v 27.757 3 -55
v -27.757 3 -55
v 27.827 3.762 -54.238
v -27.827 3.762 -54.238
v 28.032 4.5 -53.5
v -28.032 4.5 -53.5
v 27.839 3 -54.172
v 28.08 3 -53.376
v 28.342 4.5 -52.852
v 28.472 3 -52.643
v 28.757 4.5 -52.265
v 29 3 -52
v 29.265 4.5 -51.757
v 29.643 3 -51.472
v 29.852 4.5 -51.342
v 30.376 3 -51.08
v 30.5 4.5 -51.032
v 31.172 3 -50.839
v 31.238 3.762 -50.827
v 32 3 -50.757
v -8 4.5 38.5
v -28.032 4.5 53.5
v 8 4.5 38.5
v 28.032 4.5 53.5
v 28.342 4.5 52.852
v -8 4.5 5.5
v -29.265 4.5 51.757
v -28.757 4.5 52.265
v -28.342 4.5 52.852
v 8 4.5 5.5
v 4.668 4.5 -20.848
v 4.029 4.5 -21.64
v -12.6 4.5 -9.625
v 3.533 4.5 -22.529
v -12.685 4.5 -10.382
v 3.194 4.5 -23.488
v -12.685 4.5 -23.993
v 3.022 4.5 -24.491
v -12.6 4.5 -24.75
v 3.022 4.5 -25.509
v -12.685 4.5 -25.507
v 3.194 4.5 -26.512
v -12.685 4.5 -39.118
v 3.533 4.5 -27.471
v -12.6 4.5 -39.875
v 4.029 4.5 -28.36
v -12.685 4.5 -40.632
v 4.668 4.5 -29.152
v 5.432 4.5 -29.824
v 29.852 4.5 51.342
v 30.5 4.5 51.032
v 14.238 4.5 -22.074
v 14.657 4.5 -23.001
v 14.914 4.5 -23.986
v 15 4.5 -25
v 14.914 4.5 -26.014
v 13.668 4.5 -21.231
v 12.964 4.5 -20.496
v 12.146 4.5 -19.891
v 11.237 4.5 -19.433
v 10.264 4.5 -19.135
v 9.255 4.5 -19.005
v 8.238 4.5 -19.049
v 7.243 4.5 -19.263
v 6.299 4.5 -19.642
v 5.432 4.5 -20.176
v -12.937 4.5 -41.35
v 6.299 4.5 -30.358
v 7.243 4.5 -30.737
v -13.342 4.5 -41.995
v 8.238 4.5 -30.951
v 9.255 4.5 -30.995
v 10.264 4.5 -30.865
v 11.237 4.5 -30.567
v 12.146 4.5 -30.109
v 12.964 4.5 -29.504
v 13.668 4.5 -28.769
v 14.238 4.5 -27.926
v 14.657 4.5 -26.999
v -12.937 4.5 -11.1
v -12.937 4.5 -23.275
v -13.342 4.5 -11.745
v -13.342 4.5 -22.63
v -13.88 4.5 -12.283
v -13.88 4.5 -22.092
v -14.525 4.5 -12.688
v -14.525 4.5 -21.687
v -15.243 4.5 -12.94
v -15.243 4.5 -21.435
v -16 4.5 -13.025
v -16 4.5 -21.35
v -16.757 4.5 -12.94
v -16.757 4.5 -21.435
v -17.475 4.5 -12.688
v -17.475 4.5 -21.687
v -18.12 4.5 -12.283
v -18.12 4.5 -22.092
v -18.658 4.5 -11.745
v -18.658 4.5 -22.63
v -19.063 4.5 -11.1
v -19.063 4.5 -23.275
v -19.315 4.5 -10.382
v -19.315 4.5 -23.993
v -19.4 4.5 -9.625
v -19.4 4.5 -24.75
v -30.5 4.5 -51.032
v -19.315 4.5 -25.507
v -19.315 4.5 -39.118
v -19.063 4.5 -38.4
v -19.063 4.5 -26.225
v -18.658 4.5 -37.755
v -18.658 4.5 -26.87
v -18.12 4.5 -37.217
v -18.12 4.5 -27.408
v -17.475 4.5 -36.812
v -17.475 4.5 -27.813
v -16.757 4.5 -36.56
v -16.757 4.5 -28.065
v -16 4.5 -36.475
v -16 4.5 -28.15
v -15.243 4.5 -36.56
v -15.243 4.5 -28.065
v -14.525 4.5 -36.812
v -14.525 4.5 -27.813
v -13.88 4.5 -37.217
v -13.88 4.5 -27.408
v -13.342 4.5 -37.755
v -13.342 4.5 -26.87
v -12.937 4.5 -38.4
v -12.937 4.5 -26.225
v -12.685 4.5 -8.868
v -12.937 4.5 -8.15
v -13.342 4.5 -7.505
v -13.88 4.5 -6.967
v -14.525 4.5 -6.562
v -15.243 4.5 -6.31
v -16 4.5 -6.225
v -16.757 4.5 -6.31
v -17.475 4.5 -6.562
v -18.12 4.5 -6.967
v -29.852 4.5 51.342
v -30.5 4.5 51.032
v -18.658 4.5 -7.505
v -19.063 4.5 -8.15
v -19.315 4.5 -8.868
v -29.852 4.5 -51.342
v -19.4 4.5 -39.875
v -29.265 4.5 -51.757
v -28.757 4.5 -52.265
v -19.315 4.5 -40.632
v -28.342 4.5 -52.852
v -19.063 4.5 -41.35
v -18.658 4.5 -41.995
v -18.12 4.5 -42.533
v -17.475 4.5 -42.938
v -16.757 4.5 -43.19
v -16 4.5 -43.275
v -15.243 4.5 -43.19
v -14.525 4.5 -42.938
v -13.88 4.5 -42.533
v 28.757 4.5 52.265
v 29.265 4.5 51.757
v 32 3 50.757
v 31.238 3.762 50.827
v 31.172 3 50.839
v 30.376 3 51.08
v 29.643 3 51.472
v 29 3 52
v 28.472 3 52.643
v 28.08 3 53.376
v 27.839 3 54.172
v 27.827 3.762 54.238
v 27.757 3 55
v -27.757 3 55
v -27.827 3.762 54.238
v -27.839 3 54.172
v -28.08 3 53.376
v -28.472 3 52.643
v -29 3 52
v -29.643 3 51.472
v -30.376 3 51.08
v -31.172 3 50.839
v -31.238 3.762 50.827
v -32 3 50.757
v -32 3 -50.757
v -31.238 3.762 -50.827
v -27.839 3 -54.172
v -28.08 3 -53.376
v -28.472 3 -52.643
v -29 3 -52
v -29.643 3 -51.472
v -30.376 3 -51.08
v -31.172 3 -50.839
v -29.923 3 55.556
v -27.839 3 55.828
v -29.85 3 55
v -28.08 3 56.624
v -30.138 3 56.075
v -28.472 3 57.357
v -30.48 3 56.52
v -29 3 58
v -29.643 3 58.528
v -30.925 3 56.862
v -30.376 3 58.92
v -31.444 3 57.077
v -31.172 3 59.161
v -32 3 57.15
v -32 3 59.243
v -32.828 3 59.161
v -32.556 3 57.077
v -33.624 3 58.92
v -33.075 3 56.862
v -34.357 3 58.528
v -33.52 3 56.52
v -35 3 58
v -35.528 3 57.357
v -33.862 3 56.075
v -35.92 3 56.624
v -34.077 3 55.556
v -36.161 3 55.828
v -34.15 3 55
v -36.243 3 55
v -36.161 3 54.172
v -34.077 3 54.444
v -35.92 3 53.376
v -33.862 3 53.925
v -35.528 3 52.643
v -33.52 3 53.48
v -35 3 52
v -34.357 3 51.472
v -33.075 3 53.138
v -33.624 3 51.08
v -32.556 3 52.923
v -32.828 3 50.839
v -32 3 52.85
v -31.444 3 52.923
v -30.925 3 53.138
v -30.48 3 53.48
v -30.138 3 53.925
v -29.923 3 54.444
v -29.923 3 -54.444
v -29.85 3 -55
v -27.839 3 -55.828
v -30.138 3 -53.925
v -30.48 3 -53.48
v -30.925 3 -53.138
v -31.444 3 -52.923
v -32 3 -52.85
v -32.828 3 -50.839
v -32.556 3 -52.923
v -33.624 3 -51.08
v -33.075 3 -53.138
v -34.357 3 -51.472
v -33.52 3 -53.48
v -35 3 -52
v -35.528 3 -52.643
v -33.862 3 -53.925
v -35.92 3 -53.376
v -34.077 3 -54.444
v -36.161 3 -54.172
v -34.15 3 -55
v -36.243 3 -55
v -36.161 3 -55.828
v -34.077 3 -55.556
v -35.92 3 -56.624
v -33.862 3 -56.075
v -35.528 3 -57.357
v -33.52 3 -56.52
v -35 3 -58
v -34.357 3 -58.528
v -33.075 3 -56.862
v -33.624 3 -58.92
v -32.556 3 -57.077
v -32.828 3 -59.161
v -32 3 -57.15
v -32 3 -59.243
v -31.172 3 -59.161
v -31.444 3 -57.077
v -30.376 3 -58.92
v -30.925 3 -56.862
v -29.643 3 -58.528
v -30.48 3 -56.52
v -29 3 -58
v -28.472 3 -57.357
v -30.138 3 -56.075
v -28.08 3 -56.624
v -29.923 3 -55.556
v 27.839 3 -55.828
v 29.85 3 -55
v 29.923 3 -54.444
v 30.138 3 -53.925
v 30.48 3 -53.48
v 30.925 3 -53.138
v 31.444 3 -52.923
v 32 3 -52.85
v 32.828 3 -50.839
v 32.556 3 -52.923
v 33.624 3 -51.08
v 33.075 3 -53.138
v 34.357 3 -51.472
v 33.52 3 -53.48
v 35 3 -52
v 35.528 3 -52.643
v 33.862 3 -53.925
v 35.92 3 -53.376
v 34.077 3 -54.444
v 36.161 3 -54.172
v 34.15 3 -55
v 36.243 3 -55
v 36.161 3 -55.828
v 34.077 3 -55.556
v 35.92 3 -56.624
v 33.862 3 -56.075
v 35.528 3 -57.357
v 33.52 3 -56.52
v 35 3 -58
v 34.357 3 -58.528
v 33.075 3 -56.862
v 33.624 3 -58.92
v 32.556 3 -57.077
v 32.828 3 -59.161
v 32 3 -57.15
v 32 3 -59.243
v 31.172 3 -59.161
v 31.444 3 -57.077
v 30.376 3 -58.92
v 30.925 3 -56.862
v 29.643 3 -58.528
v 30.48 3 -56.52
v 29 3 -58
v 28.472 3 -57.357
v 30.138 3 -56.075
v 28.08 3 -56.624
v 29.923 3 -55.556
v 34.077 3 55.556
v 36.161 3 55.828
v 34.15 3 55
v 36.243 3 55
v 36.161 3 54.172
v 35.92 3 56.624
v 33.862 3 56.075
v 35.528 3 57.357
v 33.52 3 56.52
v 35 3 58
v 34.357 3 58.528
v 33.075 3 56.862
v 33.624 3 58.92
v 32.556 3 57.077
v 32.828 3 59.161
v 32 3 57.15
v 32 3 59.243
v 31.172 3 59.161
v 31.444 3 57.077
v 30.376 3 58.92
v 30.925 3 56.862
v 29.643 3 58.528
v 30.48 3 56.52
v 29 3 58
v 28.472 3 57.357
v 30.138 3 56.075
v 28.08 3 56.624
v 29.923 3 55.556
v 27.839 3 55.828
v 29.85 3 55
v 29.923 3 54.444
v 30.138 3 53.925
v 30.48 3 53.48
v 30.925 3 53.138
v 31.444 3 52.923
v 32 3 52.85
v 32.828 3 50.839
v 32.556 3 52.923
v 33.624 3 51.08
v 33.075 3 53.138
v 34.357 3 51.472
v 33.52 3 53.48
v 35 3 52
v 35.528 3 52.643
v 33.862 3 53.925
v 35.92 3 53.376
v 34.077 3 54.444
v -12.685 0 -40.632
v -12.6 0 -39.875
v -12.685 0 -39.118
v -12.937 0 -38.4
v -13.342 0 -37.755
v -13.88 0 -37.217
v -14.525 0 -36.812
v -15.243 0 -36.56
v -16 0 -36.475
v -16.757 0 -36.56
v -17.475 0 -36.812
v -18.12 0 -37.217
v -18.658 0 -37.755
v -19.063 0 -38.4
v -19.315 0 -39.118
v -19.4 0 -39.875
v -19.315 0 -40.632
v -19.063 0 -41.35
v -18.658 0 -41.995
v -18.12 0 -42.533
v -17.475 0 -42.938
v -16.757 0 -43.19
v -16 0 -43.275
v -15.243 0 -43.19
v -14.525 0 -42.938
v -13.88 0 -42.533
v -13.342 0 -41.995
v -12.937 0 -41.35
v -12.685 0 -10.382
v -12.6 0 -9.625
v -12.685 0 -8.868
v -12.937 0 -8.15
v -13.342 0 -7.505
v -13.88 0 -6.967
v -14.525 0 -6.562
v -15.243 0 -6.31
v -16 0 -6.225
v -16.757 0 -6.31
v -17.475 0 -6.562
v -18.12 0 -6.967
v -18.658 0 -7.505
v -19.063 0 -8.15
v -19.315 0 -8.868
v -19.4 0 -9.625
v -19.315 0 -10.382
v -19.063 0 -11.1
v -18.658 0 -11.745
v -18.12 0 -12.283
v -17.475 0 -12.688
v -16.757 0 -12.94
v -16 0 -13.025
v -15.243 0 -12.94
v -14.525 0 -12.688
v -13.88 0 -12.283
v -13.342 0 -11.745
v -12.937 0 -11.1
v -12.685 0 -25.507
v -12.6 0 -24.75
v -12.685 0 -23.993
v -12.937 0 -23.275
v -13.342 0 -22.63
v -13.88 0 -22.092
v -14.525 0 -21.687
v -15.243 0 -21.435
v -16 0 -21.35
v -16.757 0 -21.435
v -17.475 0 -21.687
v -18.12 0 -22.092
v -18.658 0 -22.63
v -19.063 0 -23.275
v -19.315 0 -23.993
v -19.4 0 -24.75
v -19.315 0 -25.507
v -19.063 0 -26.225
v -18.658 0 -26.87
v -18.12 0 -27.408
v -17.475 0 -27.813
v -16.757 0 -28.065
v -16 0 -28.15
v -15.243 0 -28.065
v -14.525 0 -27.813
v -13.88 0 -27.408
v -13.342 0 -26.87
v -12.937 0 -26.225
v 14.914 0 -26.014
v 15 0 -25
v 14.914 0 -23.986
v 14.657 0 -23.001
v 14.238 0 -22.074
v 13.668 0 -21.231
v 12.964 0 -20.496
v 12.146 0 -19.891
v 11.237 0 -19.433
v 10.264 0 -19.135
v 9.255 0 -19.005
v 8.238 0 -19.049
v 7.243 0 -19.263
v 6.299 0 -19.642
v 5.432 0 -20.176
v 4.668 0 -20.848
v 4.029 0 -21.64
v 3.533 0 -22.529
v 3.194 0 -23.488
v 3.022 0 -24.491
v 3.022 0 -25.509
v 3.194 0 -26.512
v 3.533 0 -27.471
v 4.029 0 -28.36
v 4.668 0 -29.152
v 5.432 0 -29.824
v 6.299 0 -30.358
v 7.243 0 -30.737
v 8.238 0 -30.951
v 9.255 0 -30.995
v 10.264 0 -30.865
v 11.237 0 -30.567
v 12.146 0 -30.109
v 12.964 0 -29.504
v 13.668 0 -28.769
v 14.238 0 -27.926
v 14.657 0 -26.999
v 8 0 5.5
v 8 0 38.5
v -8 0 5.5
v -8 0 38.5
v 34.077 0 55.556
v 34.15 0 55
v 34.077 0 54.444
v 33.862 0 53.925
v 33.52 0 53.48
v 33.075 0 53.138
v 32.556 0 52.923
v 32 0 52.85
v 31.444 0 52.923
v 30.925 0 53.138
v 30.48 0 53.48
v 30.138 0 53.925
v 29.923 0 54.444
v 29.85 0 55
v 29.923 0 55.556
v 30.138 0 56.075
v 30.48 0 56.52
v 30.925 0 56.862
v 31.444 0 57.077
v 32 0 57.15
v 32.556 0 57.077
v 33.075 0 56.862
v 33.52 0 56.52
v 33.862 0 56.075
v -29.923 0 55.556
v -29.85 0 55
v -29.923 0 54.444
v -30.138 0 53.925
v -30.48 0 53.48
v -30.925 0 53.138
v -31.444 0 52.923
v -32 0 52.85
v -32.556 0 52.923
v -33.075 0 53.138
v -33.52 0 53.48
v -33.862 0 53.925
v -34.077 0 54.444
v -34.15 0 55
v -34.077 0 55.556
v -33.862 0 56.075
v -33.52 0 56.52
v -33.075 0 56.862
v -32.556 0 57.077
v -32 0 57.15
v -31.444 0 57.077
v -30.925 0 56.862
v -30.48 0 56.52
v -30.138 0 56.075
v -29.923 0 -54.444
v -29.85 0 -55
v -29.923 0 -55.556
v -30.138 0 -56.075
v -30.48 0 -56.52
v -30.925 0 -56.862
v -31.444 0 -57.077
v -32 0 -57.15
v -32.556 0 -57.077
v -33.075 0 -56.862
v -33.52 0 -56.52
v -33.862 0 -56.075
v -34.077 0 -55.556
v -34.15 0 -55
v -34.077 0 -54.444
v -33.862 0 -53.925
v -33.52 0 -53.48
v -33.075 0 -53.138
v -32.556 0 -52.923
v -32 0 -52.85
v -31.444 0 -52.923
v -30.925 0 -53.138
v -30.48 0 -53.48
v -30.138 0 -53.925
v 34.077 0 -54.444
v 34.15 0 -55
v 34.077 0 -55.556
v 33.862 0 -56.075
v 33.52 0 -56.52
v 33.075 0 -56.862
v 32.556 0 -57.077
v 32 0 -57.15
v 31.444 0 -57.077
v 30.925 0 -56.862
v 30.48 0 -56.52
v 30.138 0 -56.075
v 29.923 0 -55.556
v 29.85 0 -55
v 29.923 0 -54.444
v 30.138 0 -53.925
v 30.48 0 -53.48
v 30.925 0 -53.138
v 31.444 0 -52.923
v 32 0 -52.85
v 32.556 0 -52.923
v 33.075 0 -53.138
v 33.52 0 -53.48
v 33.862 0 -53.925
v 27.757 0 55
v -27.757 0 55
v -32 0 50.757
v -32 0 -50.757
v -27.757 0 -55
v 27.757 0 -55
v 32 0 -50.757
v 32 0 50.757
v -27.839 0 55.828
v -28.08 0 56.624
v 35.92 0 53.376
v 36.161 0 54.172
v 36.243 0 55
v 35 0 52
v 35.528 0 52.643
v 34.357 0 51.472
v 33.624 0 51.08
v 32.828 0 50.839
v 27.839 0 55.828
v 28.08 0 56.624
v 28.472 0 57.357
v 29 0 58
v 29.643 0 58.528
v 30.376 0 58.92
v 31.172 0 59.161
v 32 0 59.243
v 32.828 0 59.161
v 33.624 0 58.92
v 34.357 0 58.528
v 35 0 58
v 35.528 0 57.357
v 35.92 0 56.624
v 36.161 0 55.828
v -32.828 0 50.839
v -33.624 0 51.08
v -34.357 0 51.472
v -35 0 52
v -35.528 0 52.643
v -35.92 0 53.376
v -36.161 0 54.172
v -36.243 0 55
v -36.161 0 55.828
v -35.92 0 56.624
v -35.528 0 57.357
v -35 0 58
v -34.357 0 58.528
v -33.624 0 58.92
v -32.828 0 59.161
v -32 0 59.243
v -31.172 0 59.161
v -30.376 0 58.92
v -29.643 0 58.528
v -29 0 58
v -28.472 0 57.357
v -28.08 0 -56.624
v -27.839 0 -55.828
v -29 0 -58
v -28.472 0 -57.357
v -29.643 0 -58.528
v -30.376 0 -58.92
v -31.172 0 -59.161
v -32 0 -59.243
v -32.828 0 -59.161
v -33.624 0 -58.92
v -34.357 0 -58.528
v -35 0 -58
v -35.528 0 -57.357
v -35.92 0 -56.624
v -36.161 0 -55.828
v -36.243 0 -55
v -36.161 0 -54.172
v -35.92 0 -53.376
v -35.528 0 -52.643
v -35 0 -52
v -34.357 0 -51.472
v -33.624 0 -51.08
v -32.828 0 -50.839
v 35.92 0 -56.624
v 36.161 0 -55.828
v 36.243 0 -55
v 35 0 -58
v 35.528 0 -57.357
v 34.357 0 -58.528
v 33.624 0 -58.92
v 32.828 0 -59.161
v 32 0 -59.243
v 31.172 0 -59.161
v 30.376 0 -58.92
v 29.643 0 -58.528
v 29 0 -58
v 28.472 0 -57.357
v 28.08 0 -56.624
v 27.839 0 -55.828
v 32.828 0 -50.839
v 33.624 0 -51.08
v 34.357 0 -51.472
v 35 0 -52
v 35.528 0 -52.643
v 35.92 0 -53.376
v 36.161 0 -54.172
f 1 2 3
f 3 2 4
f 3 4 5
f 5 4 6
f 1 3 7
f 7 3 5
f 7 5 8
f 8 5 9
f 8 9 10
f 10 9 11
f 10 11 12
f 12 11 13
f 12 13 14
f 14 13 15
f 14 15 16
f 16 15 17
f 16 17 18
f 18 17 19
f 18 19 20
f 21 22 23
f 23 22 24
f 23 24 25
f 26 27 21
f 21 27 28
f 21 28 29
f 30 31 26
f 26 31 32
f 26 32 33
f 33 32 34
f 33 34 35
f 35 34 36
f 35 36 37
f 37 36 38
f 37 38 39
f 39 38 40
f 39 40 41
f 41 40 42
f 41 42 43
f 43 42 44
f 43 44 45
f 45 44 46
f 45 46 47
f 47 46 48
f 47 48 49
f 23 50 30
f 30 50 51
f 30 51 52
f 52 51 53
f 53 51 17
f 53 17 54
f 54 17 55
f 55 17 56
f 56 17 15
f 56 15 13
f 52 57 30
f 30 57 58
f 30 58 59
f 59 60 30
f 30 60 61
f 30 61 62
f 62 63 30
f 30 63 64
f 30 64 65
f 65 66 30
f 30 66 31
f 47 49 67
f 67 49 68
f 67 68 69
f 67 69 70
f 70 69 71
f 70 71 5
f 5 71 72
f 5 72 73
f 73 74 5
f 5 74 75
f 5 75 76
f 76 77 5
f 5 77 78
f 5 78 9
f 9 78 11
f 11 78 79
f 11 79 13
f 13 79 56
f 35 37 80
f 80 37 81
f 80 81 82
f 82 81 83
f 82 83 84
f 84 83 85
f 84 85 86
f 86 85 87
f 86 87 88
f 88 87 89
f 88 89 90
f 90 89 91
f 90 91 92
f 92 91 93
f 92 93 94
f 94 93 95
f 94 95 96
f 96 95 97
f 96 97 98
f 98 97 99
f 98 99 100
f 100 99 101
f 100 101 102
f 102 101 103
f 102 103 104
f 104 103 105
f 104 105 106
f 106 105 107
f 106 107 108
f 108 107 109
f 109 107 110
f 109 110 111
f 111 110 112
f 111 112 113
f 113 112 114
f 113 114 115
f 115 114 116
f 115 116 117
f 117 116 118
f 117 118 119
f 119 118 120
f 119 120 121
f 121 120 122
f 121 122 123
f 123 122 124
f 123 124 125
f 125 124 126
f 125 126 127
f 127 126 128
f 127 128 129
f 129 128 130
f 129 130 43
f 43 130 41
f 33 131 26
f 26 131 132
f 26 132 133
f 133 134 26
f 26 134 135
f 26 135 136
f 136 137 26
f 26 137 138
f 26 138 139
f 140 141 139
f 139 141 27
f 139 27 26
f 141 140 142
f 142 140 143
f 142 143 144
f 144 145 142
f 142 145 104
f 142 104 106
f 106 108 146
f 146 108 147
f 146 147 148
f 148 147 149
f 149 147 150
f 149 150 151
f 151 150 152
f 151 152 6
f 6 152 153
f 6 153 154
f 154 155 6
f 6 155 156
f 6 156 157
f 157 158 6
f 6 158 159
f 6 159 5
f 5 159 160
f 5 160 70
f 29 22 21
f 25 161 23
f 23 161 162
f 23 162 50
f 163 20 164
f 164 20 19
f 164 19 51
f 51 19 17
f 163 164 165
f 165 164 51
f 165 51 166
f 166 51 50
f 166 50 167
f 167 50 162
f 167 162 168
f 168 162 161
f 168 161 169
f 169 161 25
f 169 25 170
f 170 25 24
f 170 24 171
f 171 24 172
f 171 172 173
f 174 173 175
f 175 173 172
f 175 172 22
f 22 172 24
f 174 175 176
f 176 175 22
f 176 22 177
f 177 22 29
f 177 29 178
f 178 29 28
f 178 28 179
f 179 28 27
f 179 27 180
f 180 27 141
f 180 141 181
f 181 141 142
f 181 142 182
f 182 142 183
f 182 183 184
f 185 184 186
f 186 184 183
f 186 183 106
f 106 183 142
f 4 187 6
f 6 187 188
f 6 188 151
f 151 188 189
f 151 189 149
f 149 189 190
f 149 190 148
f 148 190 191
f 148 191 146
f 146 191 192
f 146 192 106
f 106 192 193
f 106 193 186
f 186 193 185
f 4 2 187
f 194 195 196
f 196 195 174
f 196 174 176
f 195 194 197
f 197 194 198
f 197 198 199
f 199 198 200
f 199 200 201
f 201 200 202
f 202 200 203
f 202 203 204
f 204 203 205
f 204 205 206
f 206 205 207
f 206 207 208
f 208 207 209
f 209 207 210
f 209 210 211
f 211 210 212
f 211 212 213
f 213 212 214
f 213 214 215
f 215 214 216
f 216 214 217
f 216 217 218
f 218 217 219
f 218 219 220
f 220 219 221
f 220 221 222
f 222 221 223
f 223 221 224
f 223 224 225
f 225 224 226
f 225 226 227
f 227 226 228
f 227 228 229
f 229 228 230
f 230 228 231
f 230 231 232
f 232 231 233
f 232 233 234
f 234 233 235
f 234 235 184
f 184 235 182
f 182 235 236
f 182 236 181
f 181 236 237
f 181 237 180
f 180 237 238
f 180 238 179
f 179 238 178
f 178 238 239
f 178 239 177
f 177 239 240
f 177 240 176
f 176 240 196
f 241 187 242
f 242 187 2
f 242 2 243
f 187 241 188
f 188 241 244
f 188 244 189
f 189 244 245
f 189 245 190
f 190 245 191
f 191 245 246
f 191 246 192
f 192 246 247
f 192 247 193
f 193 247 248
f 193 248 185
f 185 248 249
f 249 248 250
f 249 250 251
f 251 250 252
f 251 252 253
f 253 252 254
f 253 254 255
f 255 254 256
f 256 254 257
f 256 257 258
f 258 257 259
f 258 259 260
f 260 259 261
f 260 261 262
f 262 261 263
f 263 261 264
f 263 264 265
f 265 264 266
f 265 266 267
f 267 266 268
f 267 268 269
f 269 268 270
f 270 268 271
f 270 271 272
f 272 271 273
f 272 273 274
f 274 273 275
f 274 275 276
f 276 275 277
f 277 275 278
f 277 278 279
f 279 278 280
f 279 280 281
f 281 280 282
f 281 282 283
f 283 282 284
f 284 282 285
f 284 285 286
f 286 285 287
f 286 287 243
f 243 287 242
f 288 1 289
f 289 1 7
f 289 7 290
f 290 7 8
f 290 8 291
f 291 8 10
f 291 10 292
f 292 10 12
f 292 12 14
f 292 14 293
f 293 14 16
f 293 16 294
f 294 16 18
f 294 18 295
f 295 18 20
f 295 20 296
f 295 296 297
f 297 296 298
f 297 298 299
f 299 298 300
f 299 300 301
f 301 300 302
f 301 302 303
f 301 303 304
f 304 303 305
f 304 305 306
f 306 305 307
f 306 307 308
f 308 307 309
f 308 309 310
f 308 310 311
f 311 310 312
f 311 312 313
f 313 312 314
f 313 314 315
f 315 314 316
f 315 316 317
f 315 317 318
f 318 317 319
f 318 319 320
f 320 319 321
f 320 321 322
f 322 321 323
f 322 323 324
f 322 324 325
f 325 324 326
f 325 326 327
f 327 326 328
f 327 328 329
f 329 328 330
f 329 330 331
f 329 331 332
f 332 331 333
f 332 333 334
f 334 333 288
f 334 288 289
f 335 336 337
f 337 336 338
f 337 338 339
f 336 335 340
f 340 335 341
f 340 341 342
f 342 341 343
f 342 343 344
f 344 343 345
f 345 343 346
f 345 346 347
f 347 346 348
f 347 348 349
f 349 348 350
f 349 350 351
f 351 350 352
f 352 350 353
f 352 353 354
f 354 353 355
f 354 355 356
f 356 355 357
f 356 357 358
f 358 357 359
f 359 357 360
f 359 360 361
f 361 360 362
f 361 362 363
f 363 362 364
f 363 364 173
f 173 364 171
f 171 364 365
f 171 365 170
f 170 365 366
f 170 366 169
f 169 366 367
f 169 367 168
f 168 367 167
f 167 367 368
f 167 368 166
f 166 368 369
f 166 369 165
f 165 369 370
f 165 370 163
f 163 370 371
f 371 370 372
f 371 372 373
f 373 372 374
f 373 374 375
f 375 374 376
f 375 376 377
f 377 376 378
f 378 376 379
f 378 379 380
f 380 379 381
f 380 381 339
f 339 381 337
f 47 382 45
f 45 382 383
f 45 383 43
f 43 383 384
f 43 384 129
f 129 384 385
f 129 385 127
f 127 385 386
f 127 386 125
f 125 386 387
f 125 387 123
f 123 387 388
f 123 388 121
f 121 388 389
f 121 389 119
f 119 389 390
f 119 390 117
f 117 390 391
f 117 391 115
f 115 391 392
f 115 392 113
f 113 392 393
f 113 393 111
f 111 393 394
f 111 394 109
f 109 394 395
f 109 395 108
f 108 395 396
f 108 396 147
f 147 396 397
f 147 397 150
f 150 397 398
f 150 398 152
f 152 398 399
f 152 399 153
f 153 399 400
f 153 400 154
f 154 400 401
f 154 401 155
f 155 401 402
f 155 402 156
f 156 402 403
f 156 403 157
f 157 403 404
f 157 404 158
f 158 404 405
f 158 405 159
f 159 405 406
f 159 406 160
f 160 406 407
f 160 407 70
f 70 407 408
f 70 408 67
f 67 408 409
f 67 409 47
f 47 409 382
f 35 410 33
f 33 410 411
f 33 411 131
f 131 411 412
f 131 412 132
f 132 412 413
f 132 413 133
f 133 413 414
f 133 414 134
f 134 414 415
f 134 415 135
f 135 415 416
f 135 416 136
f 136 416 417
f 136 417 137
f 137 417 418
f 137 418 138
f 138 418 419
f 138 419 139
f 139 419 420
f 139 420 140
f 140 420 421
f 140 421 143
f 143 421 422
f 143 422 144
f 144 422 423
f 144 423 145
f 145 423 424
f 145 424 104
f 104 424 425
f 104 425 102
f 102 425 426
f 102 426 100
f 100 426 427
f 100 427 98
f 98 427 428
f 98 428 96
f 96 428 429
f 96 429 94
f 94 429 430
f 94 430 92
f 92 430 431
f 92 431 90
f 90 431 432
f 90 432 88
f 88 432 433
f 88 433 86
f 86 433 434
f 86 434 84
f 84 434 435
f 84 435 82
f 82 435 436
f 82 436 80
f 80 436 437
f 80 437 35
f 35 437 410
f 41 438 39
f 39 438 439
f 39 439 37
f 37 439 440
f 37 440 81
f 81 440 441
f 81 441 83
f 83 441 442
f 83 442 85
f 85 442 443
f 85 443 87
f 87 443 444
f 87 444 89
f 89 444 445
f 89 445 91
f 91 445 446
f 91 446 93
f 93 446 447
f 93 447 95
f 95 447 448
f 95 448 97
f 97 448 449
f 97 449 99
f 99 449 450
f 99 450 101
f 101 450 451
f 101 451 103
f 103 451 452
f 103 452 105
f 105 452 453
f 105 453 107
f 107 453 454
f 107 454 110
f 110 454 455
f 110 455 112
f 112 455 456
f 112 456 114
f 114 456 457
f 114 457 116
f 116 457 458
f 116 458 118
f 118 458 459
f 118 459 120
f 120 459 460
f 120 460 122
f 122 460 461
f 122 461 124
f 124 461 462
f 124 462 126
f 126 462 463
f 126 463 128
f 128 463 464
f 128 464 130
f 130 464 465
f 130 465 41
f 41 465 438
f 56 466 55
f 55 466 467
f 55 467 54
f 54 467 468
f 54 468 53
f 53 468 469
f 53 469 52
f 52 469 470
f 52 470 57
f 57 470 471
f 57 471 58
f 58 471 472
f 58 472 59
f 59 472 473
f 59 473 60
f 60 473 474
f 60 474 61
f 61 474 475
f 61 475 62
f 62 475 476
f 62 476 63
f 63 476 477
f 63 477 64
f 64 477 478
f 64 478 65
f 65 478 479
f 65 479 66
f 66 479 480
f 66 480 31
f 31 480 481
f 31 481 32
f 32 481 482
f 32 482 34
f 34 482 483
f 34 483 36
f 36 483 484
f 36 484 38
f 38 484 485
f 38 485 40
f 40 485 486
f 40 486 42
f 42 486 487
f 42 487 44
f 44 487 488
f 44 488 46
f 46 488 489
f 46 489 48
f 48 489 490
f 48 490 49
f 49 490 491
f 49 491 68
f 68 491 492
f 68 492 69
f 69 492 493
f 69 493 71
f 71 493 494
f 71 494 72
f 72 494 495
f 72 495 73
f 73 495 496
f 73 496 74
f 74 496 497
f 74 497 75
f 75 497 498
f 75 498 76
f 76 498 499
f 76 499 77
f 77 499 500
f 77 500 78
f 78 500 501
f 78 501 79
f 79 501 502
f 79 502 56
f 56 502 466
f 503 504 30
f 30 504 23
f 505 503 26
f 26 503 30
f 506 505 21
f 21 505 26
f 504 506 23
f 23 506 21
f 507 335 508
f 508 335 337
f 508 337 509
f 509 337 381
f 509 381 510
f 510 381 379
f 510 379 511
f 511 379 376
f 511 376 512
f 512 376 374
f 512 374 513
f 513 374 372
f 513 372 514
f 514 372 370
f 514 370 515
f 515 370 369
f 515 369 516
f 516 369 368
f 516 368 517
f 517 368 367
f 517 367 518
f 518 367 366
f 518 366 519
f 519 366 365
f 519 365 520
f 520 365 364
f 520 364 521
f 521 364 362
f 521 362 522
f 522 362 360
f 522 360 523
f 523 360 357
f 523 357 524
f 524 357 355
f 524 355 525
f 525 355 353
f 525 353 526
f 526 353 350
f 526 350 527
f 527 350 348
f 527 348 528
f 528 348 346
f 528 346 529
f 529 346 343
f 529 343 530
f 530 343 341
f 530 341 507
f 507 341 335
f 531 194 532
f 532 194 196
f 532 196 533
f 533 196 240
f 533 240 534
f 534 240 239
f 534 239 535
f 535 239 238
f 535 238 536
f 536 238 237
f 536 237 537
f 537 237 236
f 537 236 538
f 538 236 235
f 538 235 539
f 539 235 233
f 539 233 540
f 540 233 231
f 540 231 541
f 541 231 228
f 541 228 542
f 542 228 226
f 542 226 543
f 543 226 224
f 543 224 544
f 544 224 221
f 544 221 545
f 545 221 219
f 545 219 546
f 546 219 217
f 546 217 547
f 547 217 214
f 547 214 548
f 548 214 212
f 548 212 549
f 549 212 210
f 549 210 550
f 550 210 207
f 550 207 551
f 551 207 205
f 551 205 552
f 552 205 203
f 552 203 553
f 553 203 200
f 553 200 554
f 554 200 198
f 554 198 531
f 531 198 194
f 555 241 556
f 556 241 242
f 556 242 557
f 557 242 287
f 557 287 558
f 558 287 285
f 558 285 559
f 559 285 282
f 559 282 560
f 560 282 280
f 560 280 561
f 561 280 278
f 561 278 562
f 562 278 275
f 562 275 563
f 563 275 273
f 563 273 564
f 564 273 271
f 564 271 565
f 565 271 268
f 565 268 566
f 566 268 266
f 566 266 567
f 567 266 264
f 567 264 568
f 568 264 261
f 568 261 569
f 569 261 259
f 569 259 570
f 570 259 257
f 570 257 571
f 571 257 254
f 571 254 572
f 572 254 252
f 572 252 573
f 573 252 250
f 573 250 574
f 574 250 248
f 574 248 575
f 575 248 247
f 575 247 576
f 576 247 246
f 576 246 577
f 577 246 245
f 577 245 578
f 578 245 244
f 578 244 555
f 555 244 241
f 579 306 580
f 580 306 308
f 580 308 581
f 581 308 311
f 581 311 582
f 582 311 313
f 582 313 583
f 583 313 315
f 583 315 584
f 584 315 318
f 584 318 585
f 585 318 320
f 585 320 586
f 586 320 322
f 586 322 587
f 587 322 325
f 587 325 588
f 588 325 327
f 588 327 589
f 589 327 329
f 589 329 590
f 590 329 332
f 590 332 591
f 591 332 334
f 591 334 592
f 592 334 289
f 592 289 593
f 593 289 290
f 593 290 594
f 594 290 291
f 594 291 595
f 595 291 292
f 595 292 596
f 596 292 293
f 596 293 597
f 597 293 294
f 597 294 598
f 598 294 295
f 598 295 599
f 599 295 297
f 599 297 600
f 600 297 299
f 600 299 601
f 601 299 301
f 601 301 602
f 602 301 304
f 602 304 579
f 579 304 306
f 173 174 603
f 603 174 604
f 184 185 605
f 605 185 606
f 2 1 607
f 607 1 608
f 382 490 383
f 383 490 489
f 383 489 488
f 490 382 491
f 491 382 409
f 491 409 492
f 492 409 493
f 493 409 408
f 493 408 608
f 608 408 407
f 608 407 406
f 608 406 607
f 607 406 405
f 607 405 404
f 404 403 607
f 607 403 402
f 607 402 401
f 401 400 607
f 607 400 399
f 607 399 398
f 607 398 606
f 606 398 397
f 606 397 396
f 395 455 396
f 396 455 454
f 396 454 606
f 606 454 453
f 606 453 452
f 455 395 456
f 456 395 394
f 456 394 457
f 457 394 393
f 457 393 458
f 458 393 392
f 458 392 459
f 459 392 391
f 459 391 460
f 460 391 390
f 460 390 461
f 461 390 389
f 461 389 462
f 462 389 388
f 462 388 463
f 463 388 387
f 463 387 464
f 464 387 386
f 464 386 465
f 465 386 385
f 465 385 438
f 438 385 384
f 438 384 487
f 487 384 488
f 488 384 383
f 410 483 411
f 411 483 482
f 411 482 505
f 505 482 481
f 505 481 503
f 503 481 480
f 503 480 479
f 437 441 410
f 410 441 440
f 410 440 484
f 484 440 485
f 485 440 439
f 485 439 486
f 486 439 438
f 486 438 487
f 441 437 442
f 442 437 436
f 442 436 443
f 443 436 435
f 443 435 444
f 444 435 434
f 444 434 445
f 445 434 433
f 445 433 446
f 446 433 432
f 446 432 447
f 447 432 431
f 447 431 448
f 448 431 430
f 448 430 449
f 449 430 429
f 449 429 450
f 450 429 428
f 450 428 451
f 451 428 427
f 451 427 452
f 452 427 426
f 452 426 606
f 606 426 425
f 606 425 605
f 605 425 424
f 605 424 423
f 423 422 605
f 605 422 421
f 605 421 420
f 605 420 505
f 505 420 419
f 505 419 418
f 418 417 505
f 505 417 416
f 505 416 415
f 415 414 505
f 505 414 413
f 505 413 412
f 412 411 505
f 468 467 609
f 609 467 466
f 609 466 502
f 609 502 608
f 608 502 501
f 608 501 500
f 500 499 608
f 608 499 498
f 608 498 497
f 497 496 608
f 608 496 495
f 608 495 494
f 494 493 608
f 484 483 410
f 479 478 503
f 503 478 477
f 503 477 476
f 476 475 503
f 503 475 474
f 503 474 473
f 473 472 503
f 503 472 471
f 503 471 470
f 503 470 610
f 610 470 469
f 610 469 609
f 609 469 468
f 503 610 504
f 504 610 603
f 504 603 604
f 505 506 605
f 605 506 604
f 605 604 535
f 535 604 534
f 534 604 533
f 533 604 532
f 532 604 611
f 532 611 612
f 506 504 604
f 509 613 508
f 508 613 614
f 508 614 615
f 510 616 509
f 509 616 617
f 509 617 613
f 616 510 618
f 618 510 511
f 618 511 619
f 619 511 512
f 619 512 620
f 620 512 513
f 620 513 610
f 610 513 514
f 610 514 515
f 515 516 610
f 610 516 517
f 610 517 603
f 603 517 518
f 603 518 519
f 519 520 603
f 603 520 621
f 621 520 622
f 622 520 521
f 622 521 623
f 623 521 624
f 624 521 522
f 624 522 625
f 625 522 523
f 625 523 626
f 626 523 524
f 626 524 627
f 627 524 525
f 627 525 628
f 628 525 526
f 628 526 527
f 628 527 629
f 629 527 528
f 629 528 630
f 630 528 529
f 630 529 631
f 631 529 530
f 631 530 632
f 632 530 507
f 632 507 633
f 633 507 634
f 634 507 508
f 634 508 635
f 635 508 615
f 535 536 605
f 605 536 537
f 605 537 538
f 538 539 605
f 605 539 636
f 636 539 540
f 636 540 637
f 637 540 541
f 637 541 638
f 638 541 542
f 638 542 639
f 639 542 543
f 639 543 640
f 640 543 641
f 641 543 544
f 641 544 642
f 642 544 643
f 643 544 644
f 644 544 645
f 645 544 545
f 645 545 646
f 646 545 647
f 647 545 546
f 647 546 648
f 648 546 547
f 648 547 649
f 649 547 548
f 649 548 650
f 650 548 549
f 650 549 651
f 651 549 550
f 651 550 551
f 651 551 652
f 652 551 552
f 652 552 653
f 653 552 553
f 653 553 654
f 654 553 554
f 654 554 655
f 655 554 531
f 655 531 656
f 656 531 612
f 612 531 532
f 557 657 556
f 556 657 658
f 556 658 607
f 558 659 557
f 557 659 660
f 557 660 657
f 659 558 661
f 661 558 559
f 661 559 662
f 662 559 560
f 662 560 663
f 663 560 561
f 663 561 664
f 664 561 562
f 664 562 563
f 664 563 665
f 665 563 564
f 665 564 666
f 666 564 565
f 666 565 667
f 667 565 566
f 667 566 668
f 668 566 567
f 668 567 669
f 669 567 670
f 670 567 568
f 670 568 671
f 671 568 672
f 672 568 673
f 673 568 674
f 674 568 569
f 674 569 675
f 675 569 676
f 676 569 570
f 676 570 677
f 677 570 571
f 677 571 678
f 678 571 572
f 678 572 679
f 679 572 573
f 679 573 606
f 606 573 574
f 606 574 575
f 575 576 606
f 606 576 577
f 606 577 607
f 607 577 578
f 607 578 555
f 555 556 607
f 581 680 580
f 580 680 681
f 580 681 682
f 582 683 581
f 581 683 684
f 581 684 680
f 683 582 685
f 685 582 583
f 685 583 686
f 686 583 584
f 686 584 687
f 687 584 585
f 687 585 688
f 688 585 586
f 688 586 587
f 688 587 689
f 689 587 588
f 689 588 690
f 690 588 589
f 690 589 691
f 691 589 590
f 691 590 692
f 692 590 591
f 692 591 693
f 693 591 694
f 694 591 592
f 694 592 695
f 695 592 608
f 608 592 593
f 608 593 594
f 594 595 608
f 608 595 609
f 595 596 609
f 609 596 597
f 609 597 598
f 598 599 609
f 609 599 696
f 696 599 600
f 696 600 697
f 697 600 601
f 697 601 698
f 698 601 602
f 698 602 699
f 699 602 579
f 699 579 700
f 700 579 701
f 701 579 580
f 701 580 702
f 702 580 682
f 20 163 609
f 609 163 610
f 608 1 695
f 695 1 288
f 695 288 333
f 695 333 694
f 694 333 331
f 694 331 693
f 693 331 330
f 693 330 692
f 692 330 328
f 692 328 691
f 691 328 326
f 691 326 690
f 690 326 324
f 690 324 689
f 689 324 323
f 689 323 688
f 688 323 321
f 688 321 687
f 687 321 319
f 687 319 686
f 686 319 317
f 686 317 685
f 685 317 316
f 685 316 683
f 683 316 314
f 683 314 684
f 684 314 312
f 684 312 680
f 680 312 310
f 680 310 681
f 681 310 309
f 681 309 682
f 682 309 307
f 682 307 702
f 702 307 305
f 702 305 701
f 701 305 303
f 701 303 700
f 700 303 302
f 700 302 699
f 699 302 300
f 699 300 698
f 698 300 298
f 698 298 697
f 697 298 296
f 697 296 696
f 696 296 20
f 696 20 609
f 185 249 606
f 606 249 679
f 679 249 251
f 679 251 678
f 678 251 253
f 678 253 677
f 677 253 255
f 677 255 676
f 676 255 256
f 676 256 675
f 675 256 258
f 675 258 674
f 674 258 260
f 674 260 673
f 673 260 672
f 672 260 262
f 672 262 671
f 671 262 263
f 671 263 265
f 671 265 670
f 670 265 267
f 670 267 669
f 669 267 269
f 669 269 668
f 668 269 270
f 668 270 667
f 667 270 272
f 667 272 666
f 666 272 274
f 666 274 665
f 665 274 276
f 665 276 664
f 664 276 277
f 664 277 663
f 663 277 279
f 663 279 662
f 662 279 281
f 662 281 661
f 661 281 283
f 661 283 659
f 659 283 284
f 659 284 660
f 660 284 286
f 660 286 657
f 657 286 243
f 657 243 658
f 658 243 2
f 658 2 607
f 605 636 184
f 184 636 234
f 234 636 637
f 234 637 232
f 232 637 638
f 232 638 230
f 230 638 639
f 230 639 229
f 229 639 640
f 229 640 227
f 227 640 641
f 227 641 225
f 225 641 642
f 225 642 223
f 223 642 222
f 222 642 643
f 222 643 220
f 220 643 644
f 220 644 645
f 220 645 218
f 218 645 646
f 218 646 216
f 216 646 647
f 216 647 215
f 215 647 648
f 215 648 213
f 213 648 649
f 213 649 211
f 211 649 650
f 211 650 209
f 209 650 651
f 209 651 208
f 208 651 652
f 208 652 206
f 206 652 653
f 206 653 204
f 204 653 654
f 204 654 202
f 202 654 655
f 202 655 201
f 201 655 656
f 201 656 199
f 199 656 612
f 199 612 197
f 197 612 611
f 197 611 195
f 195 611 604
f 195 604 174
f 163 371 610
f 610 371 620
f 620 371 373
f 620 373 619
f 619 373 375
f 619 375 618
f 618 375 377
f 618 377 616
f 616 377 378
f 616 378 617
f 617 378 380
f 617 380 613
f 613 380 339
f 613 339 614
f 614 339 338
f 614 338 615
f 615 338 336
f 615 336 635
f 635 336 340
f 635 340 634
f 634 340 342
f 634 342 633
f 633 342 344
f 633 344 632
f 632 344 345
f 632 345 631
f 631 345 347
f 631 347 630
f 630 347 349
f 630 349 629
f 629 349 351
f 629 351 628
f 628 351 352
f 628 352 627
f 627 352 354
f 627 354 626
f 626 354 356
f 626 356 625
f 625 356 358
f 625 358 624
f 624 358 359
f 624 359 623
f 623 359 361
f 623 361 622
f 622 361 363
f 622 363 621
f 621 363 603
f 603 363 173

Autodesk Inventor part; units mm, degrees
ref_plane "YZ Plane" through (0, 0, 0) normal (1, 0, 0) x (0, 1, 0)
ref_plane "XZ Plane" through (0, 0, 0) normal (0, 1, 0) x (-1, 0, 0)
ref_plane "XY Plane" through (0, 0, 0) normal (0, 0, 1) x (1, 0, 0)
sketch "Sketch1" plane through (0, 0, 0) normal (0, 1, 0) x (-1, 0, 0)
  line L0 (32, 55) -> (-32, 55)
  line L1 (-32, 55) -> (-32, -55)
  line L2 (-32, -55) -> (32, -55)
  line L3 (32, -55) -> (32, 55)
  line L4 (32, 55) -> (-32, -55) construction
  line L5 (-32, 55) -> (32, -55) construction
  circle A0 centre (32, 55) radius 4.2425
  circle A1 centre (32, -55) radius 4.2425
  circle A2 centre (-32, 55) radius 4.2425
  circle A3 centre (-32, -55) radius 4.2425
  point P0 (0, 0)
  dimension "d0" = 64
  dimension "d1" = 110
  dimension "d2" = 8.485
  dimension "d5" = 110
  dimension "d8" = 64
extrude "Extrusion1" add sketch "Sketch1" along normal blind 3
sketch "Sketch2" plane through (0, 3, 0) normal (0, 1, 0) x (1, 0, 0)
  line L0 (32, -50.7575) -> (32, 50.7575) projected
  arc A0 (32, 50.7575) -> (27.7575, 55) centre (32, 55) ccw projected
  line L1 (27.7575, 55) -> (-27.7575, 55) projected
  arc A1 (-27.7575, 55) -> (-32, 50.7575) centre (-32, 55) ccw projected
  line L2 (-32, 50.7575) -> (-32, -50.7575) projected
  arc A2 (-32, -50.7575) -> (-27.7575, -55) centre (-32, -55) ccw projected
  line L3 (-27.7575, -55) -> (27.7575, -55) projected
  arc A3 (27.7575, -55) -> (32, -50.7575) centre (32, -55) ccw projected
  circle A4 centre (-32, -55) radius 2.15
  circle A5 centre (-32, 55) radius 2.15
  circle A6 centre (32, -55) radius 2.15
  circle A7 centre (32, 55) radius 2.15
  point P0 (0, 0)
  dimension "d13" = 4.3
  dimension "d16" = 110
  dimension "d19" = 64
extrude "Extrusion2" cut sketch "Sketch2" against normal blind 3 contours A4 | A5 | A6 | A7
sketch "Sketch3" plane through (0, 3, 0) normal (0, 1, 0) x (1, 0, 0)
  line L0 (-8, -38.5) -> (8, -38.5)
  line L1 (8, -38.5) -> (8, -5.5)
  line L2 (8, -5.5) -> (-8, -5.5)
  line L3 (-8, -5.5) -> (-8, -38.5)
  line L4 (-32, 50.7575) -> (-32, -50.7575) projected
  line L5 (32, -50.7575) -> (32, 50.7575) projected
  line L6 (-27.7575, -55) -> (27.7575, -55) projected
  point P0 (0, 0)
  dimension "d24" = 16
  dimension "d25" = 33
  dimension "d26" = 24
  dimension "d27" = 24
  dimension "d28" = 16.5
extrude "Extrusion3" cut sketch "Sketch3" against normal blind 3
sketch "Sketch4" plane through (0, 3, 0) normal (0, 1, 0) x (1, 0, 0)
  circle A0 centre (-16, 9.625) radius 3.4
  line L0 (0, 82.9395) -> (0, -82.9395) projected
  circle A1 centre (-16, 24.75) radius 3.4
  circle A2 centre (-16, 39.875) radius 3.4
  line L1 (27.7575, 55) -> (-27.7575, 55) projected
  line L2 (-8, -5.5) -> (8, -5.5) projected
  line L3 (-16, 0) -> (-16, 55)
  circle A3 centre (9, 25) radius 6
  line L4 (32, -50.7575) -> (32, 50.7575) projected
  point P0 (0, 0)
  dimension "d31" = 6.8
  dimension "d32" = 6.8
  dimension "d33" = 6.8
  dimension "d34" = 15.125
  dimension "d35" = 15.125
  dimension "d36" = 15.125
  dimension "d37" = 15.125
  dimension "d53" = 16
  dimension "d54" = 55
  dimension "d55" = 12
  dimension "d56" = 23
  dimension "d64" = 30
extrude "Extrusion4" cut sketch "Sketch4" against normal blind 6
sketch "Sketch5" plane through (0, 3, 0) normal (0, 1, 0) x (1, 0, 0)
  circle A0 centre (-16, 24.75) radius 3.4 projected
  circle A1 centre (-16, 9.625) radius 3.4 projected
  circle A2 centre (-16, 39.875) radius 3.4 projected
  line L0 (8, -5.5) -> (8, -38.5) projected
  line L1 (8, -38.5) -> (-8, -38.5) projected
  line L2 (-8, -38.5) -> (-8, -5.5) projected
  line L3 (-8, -5.5) -> (8, -5.5) projected
  circle A3 centre (32, -55) radius 2.15 projected
  circle A4 centre (-32, -55) radius 2.15 projected
  circle A5 centre (-32, 55) radius 2.15 projected
  circle A6 centre (32, 55) radius 2.15 projected
  line L4 (32, -50.7575) -> (32, 50.7575) projected
  arc A7 (32, 50.7575) -> (27.7575, 55) centre (32, 55) ccw projected
  line L5 (27.7575, 55) -> (-27.7575, 55) projected
  arc A8 (-27.7575, 55) -> (-32, 50.7575) centre (-32, 55) ccw projected
  line L6 (-32, 50.7575) -> (-32, -50.7575) projected
  arc A9 (-32, -50.7575) -> (-27.7575, -55) centre (-32, -55) ccw projected
  line L7 (-27.7575, -55) -> (27.7575, -55) projected
  arc A10 (27.7575, -55) -> (32, -50.7575) centre (32, -55) ccw projected
  circle A11 centre (-32, -55) radius 2.15 projected
  circle A12 centre (-32, -55) radius 4.2425
  circle A13 centre (-32, 55) radius 4.2425
  circle A14 centre (32, -55) radius 4.2425
  circle A15 centre (32, 55) radius 4.2425
  line L8 (-32, -50.7575) -> (-32, 50.7575)
  line L9 (-27.7575, 55) -> (27.7575, 55)
  line L10 (32, -50.7575) -> (32, 50.7575) projected
  line L11 (32, 50.7575) -> (32, -50.7575)
  line L12 (-27.7575, -55) -> (27.7575, -55) projected
  line L13 (27.7575, -55) -> (-27.7575, -55)
  circle A16 centre (-16, 39.875) radius 3.4 projected
  circle A17 centre (-16, 9.625) radius 3.4 projected
  circle A18 centre (-16, 24.75) radius 3.4 projected
  circle A19 centre (9, 25) radius 6 projected
  line L14 (8, -38.5) -> (8, -5.5) projected
  line L15 (8, -5.5) -> (-8, -5.5) projected
  line L16 (-8, -5.5) -> (-8, -38.5) projected
  line L17 (-8, -38.5) -> (8, -38.5) projected
  circle A20 centre (32, -55) radius 2.15 projected
  circle A21 centre (-32, -55) radius 2.15 projected
  circle A22 centre (-32, 55) radius 2.15 projected
  circle A23 centre (32, 55) radius 2.15 projected
  line L18 (-27.7575, -55) -> (27.7575, -55) projected
  arc A24 (-32, -50.7575) -> (-27.7575, -55) centre (-32, -55) ccw projected
  line L19 (-32, 50.7575) -> (-32, -50.7575) projected
  arc A25 (-27.7575, 55) -> (-32, 50.7575) centre (-32, 55) ccw projected
  line L20 (27.7575, 55) -> (-27.7575, 55) projected
  arc A26 (32, 50.7575) -> (27.7575, 55) centre (32, 55) ccw projected
  line L21 (32, -50.7575) -> (32, 50.7575) projected
  arc A27 (27.7575, -55) -> (32, -50.7575) centre (32, -55) ccw projected
  circle A28 centre (9, 25) radius 6
  point P0 (0, 0)
  dimension "d42" = 110
  dimension "d45" = 64
extrude "Extrusion6" add sketch "Sketch5" along normal blind 1.5 contours A14 L7 A12 L6 A13 L5 A15 L4
chamfer "Chamfer2" distance 1.5 angle 45 4 edges at (-32, 4.5, 0) (0, 4.5, 55) (32, 4.5, 0) (0, 4.5, -55)
equation "\"d26\" = d27"
equation "\"d32\" = d31"
equation "\"d33\" = d31"
equation "\"d34\" = d37"
equation "\"d35\" = d34"
equation "\"d36\" = d34"
properties part number "gora"
